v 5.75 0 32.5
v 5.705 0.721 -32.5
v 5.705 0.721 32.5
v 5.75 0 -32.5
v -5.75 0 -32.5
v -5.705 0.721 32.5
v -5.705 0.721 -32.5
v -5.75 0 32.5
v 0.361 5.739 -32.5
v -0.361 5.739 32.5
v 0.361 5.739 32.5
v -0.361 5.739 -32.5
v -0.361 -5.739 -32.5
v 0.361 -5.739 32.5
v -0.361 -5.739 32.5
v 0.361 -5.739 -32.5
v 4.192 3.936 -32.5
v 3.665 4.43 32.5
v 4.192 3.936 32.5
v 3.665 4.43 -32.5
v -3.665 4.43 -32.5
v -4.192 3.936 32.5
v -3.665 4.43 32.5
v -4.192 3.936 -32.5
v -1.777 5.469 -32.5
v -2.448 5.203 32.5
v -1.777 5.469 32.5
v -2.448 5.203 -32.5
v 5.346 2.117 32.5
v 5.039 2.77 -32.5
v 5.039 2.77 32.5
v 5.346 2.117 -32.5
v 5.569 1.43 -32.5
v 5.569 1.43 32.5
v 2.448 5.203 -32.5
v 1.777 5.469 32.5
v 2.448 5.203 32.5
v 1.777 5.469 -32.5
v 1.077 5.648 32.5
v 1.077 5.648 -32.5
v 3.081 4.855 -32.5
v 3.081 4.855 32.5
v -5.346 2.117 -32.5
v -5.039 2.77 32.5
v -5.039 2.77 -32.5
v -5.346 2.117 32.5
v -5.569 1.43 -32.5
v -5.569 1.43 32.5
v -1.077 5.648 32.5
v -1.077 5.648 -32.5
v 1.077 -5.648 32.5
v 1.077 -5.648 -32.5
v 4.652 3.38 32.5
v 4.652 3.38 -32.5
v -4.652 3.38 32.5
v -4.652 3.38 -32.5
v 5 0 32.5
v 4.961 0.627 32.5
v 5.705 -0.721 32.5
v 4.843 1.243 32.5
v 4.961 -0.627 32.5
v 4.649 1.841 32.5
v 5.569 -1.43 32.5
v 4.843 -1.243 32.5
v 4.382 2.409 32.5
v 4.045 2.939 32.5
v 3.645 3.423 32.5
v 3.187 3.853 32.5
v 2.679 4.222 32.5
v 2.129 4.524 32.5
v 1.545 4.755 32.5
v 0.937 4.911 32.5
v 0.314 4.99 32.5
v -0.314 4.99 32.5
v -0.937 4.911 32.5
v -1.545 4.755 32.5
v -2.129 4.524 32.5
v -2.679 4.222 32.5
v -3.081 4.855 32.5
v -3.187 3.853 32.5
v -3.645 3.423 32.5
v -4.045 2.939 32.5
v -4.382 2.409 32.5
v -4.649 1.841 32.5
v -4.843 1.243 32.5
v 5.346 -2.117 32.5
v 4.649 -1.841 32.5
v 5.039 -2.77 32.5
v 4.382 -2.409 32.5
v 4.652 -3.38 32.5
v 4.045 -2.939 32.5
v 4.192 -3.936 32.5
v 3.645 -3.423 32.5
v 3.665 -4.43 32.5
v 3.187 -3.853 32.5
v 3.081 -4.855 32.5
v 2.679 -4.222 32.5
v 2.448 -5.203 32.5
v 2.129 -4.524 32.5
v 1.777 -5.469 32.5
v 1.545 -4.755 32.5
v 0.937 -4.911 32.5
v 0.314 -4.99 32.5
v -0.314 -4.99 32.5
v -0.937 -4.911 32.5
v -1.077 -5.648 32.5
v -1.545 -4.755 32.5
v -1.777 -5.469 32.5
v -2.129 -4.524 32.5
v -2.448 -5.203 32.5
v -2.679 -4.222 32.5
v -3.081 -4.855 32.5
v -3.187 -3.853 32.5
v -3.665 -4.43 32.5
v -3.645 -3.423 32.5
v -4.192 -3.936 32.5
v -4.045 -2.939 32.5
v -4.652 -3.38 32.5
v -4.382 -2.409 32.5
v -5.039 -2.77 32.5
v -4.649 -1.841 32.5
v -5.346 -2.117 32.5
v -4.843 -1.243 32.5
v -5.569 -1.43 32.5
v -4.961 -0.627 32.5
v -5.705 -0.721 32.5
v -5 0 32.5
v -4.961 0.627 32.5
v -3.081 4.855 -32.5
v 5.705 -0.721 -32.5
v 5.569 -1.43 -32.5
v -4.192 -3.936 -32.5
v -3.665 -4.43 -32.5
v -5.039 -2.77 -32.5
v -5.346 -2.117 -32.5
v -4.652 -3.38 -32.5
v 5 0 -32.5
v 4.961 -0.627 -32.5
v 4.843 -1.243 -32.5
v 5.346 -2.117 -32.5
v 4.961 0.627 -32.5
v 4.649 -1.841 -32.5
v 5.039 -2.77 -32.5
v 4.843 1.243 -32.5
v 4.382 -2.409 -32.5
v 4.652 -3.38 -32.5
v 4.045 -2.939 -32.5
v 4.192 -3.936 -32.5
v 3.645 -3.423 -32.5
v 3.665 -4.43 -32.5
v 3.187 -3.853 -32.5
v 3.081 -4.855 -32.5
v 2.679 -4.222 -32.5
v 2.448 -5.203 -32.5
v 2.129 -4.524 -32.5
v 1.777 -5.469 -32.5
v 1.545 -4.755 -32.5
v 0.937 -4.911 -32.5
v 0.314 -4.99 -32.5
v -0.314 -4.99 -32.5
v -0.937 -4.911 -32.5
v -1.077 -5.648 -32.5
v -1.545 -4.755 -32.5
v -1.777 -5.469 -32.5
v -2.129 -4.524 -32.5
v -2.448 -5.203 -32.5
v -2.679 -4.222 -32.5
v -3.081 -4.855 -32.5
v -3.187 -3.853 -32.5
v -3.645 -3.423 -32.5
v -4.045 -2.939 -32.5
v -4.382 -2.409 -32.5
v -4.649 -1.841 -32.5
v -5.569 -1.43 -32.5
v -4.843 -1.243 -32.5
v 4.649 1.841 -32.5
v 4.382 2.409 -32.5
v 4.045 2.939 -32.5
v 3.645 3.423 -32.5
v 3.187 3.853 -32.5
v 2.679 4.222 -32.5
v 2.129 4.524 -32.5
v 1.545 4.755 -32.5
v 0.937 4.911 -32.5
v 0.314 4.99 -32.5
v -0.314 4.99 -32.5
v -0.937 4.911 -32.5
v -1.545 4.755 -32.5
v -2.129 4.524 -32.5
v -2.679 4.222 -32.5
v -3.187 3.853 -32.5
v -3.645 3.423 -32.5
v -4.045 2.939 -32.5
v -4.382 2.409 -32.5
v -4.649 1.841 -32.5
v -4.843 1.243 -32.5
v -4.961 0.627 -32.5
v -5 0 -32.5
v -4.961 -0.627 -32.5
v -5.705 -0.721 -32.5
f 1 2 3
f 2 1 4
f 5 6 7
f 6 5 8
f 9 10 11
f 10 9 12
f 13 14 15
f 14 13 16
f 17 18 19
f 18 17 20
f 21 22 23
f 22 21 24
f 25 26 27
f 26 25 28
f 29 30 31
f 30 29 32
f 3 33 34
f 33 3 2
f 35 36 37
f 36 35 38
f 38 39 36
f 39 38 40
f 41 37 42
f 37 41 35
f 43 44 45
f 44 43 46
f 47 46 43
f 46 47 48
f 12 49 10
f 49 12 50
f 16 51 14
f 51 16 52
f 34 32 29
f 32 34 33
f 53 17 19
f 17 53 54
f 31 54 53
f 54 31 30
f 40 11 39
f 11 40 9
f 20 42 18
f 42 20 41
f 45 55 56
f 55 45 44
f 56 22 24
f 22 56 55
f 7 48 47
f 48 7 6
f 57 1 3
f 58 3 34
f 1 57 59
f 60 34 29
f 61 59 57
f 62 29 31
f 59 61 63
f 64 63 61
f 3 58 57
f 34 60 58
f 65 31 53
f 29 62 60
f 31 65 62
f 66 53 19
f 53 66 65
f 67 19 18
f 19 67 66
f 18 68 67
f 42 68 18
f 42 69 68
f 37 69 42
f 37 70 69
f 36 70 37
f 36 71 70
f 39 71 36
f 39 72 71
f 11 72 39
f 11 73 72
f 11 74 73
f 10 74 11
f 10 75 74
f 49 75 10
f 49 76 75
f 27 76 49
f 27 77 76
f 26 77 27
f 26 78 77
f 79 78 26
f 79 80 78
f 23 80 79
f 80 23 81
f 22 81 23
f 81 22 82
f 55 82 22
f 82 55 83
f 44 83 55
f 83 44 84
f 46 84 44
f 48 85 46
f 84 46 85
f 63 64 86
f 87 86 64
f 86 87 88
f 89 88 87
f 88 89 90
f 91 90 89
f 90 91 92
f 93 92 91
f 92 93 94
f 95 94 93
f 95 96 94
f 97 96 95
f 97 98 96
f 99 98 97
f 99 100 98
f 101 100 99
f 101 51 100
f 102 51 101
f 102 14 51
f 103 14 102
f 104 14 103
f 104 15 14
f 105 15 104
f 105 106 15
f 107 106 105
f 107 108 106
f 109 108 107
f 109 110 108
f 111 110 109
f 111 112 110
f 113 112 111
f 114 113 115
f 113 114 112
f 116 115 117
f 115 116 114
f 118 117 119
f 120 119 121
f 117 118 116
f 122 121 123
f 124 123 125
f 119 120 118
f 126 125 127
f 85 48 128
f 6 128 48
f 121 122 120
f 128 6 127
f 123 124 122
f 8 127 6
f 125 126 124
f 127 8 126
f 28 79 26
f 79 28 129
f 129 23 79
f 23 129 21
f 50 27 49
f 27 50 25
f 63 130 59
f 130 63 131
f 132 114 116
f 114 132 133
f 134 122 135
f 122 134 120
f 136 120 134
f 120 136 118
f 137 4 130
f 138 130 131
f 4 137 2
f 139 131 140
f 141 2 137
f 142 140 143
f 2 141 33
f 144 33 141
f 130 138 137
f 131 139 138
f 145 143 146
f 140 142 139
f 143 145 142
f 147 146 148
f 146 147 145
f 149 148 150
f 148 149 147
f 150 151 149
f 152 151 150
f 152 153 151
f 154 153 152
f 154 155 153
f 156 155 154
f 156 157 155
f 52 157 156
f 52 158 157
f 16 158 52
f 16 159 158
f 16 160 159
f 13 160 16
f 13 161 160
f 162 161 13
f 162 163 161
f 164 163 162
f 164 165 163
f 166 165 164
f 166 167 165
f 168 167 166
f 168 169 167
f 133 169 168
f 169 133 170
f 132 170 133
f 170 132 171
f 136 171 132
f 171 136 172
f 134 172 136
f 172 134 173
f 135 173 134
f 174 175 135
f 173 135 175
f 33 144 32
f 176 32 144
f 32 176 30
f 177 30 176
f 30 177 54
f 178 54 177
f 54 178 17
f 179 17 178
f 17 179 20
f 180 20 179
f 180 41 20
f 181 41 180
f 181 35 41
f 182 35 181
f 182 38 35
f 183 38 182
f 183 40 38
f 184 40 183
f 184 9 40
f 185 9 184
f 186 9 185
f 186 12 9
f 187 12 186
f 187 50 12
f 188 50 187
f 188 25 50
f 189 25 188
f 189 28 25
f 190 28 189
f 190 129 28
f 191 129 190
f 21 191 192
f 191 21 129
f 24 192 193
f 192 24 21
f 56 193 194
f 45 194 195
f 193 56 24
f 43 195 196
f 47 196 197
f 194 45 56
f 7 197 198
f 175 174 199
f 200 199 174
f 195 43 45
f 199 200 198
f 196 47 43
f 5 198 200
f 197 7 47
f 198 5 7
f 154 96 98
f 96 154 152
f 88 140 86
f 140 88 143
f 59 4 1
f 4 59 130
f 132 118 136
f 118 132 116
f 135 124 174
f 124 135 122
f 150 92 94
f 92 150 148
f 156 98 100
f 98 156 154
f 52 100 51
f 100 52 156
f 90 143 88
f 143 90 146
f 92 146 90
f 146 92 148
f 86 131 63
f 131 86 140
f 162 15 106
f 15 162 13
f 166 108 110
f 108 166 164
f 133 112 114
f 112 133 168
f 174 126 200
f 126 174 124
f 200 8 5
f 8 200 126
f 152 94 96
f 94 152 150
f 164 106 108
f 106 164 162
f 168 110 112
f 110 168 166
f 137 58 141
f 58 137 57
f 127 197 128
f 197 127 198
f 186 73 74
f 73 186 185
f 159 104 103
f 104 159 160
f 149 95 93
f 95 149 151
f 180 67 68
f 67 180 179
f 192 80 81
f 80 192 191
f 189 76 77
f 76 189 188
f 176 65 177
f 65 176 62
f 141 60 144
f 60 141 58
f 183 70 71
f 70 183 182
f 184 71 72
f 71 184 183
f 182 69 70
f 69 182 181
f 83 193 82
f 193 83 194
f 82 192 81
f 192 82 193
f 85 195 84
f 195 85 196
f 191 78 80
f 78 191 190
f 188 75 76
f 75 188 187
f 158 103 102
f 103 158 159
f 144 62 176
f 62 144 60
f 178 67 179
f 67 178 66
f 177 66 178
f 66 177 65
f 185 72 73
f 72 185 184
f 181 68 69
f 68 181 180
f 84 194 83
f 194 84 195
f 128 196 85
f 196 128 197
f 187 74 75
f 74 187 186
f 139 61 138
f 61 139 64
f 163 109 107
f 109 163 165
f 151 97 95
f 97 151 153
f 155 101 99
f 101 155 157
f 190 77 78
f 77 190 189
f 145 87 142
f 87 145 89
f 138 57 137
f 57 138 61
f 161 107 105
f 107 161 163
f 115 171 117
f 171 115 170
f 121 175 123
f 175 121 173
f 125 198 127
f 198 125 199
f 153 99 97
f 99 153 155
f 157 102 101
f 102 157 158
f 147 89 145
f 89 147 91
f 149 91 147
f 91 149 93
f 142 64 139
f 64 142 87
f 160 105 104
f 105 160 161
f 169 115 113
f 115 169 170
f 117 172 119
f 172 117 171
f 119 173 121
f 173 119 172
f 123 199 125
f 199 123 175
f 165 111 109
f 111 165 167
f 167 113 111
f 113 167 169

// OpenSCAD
$fn = 50;


difference() {
	union() {
		translate(v = [0, 0, -32.5000000000]) {
			cylinder(h = 65, r = 5.7500000000);
		}
	}
	union() {
		translate(v = [0, 0, -100.0000000000]) {
			cylinder(h = 200, r = 5.0000000000);
		}
	}
}
